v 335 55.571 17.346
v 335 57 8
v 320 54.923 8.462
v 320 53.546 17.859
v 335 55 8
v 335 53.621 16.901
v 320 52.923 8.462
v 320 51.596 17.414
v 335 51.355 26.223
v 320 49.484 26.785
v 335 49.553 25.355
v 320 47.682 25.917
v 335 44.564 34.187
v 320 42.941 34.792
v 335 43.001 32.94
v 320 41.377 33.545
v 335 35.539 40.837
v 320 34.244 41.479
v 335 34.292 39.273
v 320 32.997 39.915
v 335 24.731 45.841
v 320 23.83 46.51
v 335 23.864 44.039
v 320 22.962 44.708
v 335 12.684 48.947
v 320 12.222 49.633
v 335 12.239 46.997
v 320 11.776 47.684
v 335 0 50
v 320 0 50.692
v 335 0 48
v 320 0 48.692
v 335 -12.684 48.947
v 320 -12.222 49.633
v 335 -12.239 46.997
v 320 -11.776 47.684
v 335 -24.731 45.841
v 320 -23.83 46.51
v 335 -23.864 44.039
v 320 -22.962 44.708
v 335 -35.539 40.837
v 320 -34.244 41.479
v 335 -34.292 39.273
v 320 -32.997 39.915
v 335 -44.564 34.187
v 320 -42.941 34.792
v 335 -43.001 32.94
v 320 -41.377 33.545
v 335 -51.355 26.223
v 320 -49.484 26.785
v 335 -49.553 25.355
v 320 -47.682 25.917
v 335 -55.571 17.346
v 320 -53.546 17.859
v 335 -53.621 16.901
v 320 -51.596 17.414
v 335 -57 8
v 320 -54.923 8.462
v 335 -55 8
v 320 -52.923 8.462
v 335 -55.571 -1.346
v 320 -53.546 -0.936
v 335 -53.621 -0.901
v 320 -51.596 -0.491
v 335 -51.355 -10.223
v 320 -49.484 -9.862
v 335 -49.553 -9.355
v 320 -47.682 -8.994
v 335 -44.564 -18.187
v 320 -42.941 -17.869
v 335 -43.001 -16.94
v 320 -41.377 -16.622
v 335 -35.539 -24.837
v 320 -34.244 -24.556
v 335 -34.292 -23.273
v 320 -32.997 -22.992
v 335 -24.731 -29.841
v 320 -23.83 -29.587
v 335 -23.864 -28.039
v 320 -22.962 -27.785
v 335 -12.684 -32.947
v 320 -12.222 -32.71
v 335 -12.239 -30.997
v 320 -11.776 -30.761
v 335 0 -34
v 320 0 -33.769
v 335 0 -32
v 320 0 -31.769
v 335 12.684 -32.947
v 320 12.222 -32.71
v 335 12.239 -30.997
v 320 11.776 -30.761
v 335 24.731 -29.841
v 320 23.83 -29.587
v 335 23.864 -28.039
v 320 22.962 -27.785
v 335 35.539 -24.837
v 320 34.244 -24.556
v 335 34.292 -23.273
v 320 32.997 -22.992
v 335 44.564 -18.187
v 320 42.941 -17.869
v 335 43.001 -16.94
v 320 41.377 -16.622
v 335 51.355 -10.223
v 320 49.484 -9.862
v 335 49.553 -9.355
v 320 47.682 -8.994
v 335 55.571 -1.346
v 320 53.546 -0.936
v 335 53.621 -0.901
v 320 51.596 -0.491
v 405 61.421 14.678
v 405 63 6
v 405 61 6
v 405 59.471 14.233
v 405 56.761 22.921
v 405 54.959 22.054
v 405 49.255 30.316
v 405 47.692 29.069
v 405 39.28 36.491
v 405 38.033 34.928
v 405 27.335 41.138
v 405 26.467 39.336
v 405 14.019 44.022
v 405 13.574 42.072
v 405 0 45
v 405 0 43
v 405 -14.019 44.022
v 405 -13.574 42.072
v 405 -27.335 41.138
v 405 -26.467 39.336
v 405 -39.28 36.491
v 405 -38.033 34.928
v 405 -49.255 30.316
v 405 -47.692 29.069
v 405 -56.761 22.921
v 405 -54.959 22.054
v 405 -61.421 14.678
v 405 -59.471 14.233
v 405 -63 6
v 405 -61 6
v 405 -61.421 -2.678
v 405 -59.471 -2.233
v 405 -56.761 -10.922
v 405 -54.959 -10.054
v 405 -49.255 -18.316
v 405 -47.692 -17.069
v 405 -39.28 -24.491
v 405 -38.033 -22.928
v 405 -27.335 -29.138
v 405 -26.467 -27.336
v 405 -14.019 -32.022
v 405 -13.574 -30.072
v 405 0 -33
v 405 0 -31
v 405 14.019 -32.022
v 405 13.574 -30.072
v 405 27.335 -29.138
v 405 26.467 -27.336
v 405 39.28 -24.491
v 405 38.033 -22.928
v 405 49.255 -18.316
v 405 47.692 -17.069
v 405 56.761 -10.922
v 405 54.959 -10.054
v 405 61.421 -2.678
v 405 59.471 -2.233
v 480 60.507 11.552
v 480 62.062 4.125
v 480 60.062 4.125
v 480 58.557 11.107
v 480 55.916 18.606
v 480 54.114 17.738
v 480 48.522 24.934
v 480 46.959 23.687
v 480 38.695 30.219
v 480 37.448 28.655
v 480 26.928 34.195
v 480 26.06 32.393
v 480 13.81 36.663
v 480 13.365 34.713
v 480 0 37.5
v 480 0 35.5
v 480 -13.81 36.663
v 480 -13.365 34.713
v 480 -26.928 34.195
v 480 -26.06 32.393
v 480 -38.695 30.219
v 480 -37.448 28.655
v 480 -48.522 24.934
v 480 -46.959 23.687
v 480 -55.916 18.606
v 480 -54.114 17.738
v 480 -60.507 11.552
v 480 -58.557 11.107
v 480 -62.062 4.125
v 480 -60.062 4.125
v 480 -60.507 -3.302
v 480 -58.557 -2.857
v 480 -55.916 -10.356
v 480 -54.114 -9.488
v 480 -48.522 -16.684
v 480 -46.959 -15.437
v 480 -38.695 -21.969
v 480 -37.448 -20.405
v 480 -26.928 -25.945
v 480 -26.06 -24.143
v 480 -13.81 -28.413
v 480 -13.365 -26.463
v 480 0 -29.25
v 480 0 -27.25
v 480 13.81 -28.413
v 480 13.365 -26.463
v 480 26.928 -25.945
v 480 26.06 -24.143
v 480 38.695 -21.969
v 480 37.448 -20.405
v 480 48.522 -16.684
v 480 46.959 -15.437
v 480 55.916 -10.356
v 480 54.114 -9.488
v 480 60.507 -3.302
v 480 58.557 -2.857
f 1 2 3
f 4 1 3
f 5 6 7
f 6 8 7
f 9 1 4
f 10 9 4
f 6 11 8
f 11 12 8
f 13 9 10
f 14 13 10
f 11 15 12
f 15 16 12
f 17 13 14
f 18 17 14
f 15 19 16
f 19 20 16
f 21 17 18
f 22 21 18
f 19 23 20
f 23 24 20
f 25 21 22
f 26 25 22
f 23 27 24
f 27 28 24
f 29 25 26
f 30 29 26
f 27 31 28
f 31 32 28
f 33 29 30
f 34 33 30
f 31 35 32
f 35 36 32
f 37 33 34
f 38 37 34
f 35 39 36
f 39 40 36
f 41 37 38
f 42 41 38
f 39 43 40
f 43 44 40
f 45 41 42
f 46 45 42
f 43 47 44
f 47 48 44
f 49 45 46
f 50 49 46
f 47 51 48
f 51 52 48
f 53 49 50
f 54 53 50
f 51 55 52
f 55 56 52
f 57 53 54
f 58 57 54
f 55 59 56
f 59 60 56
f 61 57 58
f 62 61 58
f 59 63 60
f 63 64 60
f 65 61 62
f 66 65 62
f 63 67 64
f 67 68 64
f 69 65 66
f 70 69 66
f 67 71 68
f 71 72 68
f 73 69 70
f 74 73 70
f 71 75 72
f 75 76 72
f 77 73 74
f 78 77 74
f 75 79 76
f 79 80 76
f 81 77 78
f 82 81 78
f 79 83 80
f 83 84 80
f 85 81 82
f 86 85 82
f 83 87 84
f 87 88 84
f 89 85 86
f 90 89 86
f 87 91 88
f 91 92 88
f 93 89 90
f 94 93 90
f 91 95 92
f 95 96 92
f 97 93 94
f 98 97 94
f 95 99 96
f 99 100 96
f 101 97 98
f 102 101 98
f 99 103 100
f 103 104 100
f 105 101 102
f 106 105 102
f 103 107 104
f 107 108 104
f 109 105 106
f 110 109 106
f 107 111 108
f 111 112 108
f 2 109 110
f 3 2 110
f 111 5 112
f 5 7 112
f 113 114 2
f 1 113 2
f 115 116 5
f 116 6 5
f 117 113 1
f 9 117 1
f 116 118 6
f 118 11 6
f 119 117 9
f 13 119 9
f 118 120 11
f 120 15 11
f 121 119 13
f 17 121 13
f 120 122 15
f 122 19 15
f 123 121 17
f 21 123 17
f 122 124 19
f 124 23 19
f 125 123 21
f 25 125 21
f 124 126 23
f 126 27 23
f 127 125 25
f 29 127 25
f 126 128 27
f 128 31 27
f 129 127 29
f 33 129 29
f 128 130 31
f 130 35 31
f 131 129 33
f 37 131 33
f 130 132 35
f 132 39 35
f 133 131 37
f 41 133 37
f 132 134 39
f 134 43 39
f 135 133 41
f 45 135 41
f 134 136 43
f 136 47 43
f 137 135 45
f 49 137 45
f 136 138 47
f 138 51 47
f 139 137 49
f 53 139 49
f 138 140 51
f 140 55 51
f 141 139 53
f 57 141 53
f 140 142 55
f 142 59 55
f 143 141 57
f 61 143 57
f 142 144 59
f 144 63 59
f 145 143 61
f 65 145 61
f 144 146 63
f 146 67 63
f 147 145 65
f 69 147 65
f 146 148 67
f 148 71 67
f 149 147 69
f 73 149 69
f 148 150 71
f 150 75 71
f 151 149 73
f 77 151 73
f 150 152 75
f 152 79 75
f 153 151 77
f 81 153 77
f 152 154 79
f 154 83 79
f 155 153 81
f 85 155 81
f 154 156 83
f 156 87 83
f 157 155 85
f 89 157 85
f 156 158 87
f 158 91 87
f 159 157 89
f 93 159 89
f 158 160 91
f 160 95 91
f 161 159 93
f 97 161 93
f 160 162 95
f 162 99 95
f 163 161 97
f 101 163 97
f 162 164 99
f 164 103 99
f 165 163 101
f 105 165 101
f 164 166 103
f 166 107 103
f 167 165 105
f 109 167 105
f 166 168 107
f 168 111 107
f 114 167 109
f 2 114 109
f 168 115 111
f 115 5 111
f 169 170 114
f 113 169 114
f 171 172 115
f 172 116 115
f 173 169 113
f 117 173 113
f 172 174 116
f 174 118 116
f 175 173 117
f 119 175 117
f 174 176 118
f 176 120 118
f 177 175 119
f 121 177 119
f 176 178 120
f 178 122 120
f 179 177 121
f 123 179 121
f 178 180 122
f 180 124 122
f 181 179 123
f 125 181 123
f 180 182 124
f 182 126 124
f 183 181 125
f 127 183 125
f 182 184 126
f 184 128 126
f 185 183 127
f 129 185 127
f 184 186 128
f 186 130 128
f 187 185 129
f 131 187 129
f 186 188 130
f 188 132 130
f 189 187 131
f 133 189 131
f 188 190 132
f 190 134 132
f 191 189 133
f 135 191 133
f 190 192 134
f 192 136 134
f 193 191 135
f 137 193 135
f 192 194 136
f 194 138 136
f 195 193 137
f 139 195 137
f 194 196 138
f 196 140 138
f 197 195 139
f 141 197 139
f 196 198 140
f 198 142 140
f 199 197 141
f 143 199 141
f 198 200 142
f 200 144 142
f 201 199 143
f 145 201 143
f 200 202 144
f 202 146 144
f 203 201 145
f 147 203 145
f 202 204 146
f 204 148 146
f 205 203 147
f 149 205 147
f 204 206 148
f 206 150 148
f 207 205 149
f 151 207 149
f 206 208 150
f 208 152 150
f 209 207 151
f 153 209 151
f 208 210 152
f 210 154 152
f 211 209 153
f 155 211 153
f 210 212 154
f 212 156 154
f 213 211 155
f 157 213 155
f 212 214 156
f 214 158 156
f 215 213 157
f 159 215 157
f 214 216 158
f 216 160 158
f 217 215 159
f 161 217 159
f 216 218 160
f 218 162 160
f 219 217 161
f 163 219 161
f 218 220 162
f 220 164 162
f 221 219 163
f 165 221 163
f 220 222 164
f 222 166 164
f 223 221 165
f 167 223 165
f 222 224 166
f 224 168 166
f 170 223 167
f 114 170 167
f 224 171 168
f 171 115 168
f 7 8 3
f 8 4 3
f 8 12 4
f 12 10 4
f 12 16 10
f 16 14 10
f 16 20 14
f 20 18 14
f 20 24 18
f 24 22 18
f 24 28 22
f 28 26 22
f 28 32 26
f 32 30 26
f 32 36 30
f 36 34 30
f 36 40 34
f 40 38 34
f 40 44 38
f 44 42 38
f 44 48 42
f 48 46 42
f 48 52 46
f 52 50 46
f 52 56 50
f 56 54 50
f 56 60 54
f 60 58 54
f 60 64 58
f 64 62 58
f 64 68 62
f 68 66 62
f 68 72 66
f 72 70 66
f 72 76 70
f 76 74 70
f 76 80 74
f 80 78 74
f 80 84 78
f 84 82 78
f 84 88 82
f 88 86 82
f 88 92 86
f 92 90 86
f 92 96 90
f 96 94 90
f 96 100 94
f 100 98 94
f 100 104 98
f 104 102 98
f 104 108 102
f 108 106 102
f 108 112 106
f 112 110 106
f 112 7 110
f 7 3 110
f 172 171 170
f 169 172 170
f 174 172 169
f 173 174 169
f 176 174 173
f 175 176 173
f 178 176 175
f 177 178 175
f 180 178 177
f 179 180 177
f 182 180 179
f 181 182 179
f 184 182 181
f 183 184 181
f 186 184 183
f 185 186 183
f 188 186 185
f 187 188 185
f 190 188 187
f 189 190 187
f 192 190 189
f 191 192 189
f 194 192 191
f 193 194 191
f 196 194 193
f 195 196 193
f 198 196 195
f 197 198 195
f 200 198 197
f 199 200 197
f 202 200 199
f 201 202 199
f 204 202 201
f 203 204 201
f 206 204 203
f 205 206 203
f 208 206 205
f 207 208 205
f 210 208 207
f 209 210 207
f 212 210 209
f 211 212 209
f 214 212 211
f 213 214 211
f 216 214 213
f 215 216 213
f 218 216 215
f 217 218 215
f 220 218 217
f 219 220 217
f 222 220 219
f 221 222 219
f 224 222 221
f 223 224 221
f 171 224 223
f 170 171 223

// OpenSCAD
polyhedron(points=[[320.0, 54.923077, 8.461538], [320.0, 53.546041, 17.858769], [320.0, 49.483982, 26.784783], [320.0, 42.940591, 34.791992], [320.0, 34.243978, 41.478883], [320.0, 23.83023, 46.510147], [320.0, 12.221534, 49.633494], [320.0, 0.0, 50.692308], [320.0, -12.221534, 49.633494], [320.0, -23.83023, 46.510147], [320.0, -34.243978, 41.478883], [320.0, -42.940591, 34.791992], [320.0, -49.483982, 26.784783], [320.0, -53.546041, 17.858769], [320.0, -54.923077, 8.461538], [320.0, -53.546041, -0.935692], [320.0, -49.483982, -9.861706], [320.0, -42.940591, -17.868915], [320.0, -34.243978, -24.555806], [320.0, -23.83023, -29.58707], [320.0, -12.221534, -32.710417], [320.0, -0.0, -33.769231], [320.0, 12.221534, -32.710417], [320.0, 23.83023, -29.58707], [320.0, 34.243978, -24.555806], [320.0, 42.940591, -17.868915], [320.0, 49.483982, -9.861706], [320.0, 53.546041, -0.935692], [320.0, 52.923077, 8.461538], [320.0, 51.596185, 17.413727], [320.0, 47.682045, 25.917015], [320.0, 41.376928, 33.545013], [320.0, 32.996999, 39.91522], [320.0, 22.962463, 44.708209], [320.0, 11.776493, 47.683638], [320.0, 0.0, 48.692308], [320.0, -11.776493, 47.683638], [320.0, -22.962463, 44.708209], [320.0, -32.996999, 39.91522], [320.0, -41.376928, 33.545013], [320.0, -47.682045, 25.917015], [320.0, -51.596185, 17.413727], [320.0, -52.923077, 8.461538], [320.0, -51.596185, -0.49065], [320.0, -47.682045, -8.993938], [320.0, -41.376928, -16.621936], [320.0, -32.996999, -22.992143], [320.0, -22.962463, -27.785132], [320.0, -11.776493, -30.760561], [320.0, -0.0, -31.769231], [320.0, 11.776493, -30.760561], [320.0, 22.962463, -27.785132], [320.0, 32.996999, -22.992143], [320.0, 41.376928, -16.621936], [320.0, 47.682045, -8.993938], [320.0, 51.596185, -0.49065], [335.0, 57.0, 8.0], [335.0, 55.570891, 17.345879], [335.0, 51.355225, 26.223117], [335.0, 44.564395, 34.186572], [335.0, 35.538919, 40.836922], [335.0, 24.731373, 45.840692], [335.0, 12.683693, 48.946972], [335.0, 0.0, 50.0], [335.0, -12.683693, 48.946972], [335.0, -24.731373, 45.840692], [335.0, -35.538919, 40.836922], [335.0, -44.564395, 34.186572], [335.0, -51.355225, 26.223117], [335.0, -55.570891, 17.345879], [335.0, -57.0, 8.0], [335.0, -55.570891, -1.345879], [335.0, -51.355225, -10.223117], [335.0, -44.564395, -18.186572], [335.0, -35.538919, -24.836922], [335.0, -24.731373, -29.840692], [335.0, -12.683693, -32.946972], [335.0, -0.0, -34.0], [335.0, 12.683693, -32.946972], [335.0, 24.731373, -29.840692], [335.0, 35.538919, -24.836922], [335.0, 44.564395, -18.186572], [335.0, 51.355225, -10.223117], [335.0, 55.570891, -1.345879], [335.0, 55.0, 8.0], [335.0, 53.621035, 16.900837], [335.0, 49.553288, 25.35535], [335.0, 43.000732, 32.939592], [335.0, 34.291939, 39.273259], [335.0, 23.863606, 44.038755], [335.0, 12.238651, 46.997116], [335.0, 0.0, 48.0], [335.0, -12.238651, 46.997116], [335.0, -23.863606, 44.038755], [335.0, -34.291939, 39.273259], [335.0, -43.000732, 32.939592], [335.0, -49.553288, 25.35535], [335.0, -53.621035, 16.900837], [335.0, -55.0, 8.0], [335.0, -53.621035, -0.900837], [335.0, -49.553288, -9.35535], [335.0, -43.000732, -16.939592], [335.0, -34.291939, -23.273259], [335.0, -23.863606, -28.038755], [335.0, -12.238651, -30.997116], [335.0, -0.0, -32.0], [335.0, 12.238651, -30.997116], [335.0, 23.863606, -28.038755], [335.0, 34.291939, -23.273259], [335.0, 43.000732, -16.939592], [335.0, 49.553288, -9.35535], [335.0, 53.621035, -0.900837], [405.0, 63.0, 6.0], [405.0, 61.420458, 14.678316], [405.0, 56.761039, 22.921466], [405.0, 49.255383, 30.316102], [405.0, 39.279858, 36.491428], [405.0, 27.334676, 41.137786], [405.0, 14.018819, 44.022189], [405.0, 0.0, 45.0], [405.0, -14.018819, 44.022189], [405.0, -27.334676, 41.137786], [405.0, -39.279858, 36.491428], [405.0, -49.255383, 30.316102], [405.0, -56.761039, 22.921466], [405.0, -61.420458, 14.678316], [405.0, -63.0, 6.0], [405.0, -61.420458, -2.678316], [405.0, -56.761039, -10.921466], [405.0, -49.255383, -18.316102], [405.0, -39.279858, -24.491428], [405.0, -27.334676, -29.137786], [405.0, -14.018819, -32.022189], [405.0, -0.0, -33.0], [405.0, 14.018819, -32.022189], [405.0, 27.334676, -29.137786], [405.0, 39.279858, -24.491428], [405.0, 49.255383, -18.316102], [405.0, 56.761039, -10.921466], [405.0, 61.420458, -2.678316], [405.0, 61.0, 6.0], [405.0, 59.470603, 14.233275], [405.0, 54.959101, 22.053698], [405.0, 47.69172, 29.069123], [405.0, 38.032878, 34.927765], [405.0, 26.466908, 39.335848], [405.0, 13.573777, 42.072333], [405.0, 0.0, 43.0], [405.0, -13.573777, 42.072333], [405.0, -26.466908, 39.335848], [405.0, -38.032878, 34.927765], [405.0, -47.69172, 29.069123], [405.0, -54.959101, 22.053698], [405.0, -59.470603, 14.233275], [405.0, -61.0, 6.0], [405.0, -59.470603, -2.233275], [405.0, -54.959101, -10.053698], [405.0, -47.69172, -17.069123], [405.0, -38.032878, -22.927765], [405.0, -26.466908, -27.335848], [405.0, -13.573777, -30.072333], [405.0, -0.0, -31.0], [405.0, 13.573777, -30.072333], [405.0, 26.466908, -27.335848], [405.0, 38.032878, -22.927765], [405.0, 47.69172, -17.069123], [405.0, 54.959101, -10.053698], [405.0, 59.470603, -2.233275], [480.0, 62.0625, 4.125], [480.0, 60.506464, 11.551636], [480.0, 55.91638, 18.60587], [480.0, 48.522416, 24.933972], [480.0, 38.695336, 30.218626], [480.0, 26.92791, 34.194836], [480.0, 13.810205, 36.663219], [480.0, 0.0, 37.5], [480.0, -13.810205, 36.663219], [480.0, -26.92791, 34.194836], [480.0, -38.695336, 30.218626], [480.0, -48.522416, 24.933972], [480.0, -55.91638, 18.60587], [480.0, -60.506464, 11.551636], [480.0, -62.0625, 4.125], [480.0, -60.506464, -3.301636], [480.0, -55.91638, -10.35587], [480.0, -48.522416, -16.683972], [480.0, -38.695336, -21.968626], [480.0, -26.92791, -25.944836], [480.0, -13.810205, -28.413219], [480.0, -0.0, -29.25], [480.0, 13.810205, -28.413219], [480.0, 26.92791, -25.944836], [480.0, 38.695336, -21.968626], [480.0, 48.522416, -16.683972], [480.0, 55.91638, -10.35587], [480.0, 60.506464, -3.301636], [480.0, 60.0625, 4.125], [480.0, 58.556608, 11.106594], [480.0, 54.114443, 17.738102], [480.0, 46.958753, 23.686993], [480.0, 37.448356, 28.654963], [480.0, 26.060142, 32.392898], [480.0, 13.365164, 34.713363], [480.0, 0.0, 35.5], [480.0, -13.365164, 34.713363], [480.0, -26.060142, 32.392898], [480.0, -37.448356, 28.654963], [480.0, -46.958753, 23.686993], [480.0, -54.114443, 17.738102], [480.0, -58.556608, 11.106594], [480.0, -60.0625, 4.125], [480.0, -58.556608, -2.856594], [480.0, -54.114443, -9.488102], [480.0, -46.958753, -15.436993], [480.0, -37.448356, -20.404963], [480.0, -26.060142, -24.142898], [480.0, -13.365164, -26.463363], [480.0, -0.0, -27.25], [480.0, 13.365164, -26.463363], [480.0, 26.060142, -24.142898], [480.0, 37.448356, -20.404963], [480.0, 46.958753, -15.436993], [480.0, 54.114443, -9.488102], [480.0, 58.556608, -2.856594]], faces=[[0, 56, 57], [0, 57, 1], [28, 85, 84], [28, 29, 85], [1, 57, 58], [1, 58, 2], [29, 86, 85], [29, 30, 86], [2, 58, 59], [2, 59, 3], [30, 87, 86], [30, 31, 87], [3, 59, 60], [3, 60, 4], [31, 88, 87], [31, 32, 88], [4, 60, 61], [4, 61, 5], [32, 89, 88], [32, 33, 89], [5, 61, 62], [5, 62, 6], [33, 90, 89], [33, 34, 90], [6, 62, 63], [6, 63, 7], [34, 91, 90], [34, 35, 91], [7, 63, 64], [7, 64, 8], [35, 92, 91], [35, 36, 92], [8, 64, 65], [8, 65, 9], [36, 93, 92], [36, 37, 93], [9, 65, 66], [9, 66, 10], [37, 94, 93], [37, 38, 94], [10, 66, 67], [10, 67, 11], [38, 95, 94], [38, 39, 95], [11, 67, 68], [11, 68, 12], [39, 96, 95], [39, 40, 96], [12, 68, 69], [12, 69, 13], [40, 97, 96], [40, 41, 97], [13, 69, 70], [13, 70, 14], [41, 98, 97], [41, 42, 98], [14, 70, 71], [14, 71, 15], [42, 99, 98], [42, 43, 99], [15, 71, 72], [15, 72, 16], [43, 100, 99], [43, 44, 100], [16, 72, 73], [16, 73, 17], [44, 101, 100], [44, 45, 101], [17, 73, 74], [17, 74, 18], [45, 102, 101], [45, 46, 102], [18, 74, 75], [18, 75, 19], [46, 103, 102], [46, 47, 103], [19, 75, 76], [19, 76, 20], [47, 104, 103], [47, 48, 104], [20, 76, 77], [20, 77, 21], [48, 105, 104], [48, 49, 105], [21, 77, 78], [21, 78, 22], [49, 106, 105], [49, 50, 106], [22, 78, 79], [22, 79, 23], [50, 107, 106], [50, 51, 107], [23, 79, 80], [23, 80, 24], [51, 108, 107], [51, 52, 108], [24, 80, 81], [24, 81, 25], [52, 109, 108], [52, 53, 109], [25, 81, 82], [25, 82, 26], [53, 110, 109], [53, 54, 110], [26, 82, 83], [26, 83, 27], [54, 111, 110], [54, 55, 111], [27, 83, 56], [27, 56, 0], [55, 84, 111], [55, 28, 84], [56, 112, 113], [56, 113, 57], [84, 141, 140], [84, 85, 141], [57, 113, 114], [57, 114, 58], [85, 142, 141], [85, 86, 142], [58, 114, 115], [58, 115, 59], [86, 143, 142], [86, 87, 143], [59, 115, 116], [59, 116, 60], [87, 144, 143], [87, 88, 144], [60, 116, 117], [60, 117, 61], [88, 145, 144], [88, 89, 145], [61, 117, 118], [61, 118, 62], [89, 146, 145], [89, 90, 146], [62, 118, 119], [62, 119, 63], [90, 147, 146], [90, 91, 147], [63, 119, 120], [63, 120, 64], [91, 148, 147], [91, 92, 148], [64, 120, 121], [64, 121, 65], [92, 149, 148], [92, 93, 149], [65, 121, 122], [65, 122, 66], [93, 150, 149], [93, 94, 150], [66, 122, 123], [66, 123, 67], [94, 151, 150], [94, 95, 151], [67, 123, 124], [67, 124, 68], [95, 152, 151], [95, 96, 152], [68, 124, 125], [68, 125, 69], [96, 153, 152], [96, 97, 153], [69, 125, 126], [69, 126, 70], [97, 154, 153], [97, 98, 154], [70, 126, 127], [70, 127, 71], [98, 155, 154], [98, 99, 155], [71, 127, 128], [71, 128, 72], [99, 156, 155], [99, 100, 156], [72, 128, 129], [72, 129, 73], [100, 157, 156], [100, 101, 157], [73, 129, 130], [73, 130, 74], [101, 158, 157], [101, 102, 158], [74, 130, 131], [74, 131, 75], [102, 159, 158], [102, 103, 159], [75, 131, 132], [75, 132, 76], [103, 160, 159], [103, 104, 160], [76, 132, 133], [76, 133, 77], [104, 161, 160], [104, 105, 161], [77, 133, 134], [77, 134, 78], [105, 162, 161], [105, 106, 162], [78, 134, 135], [78, 135, 79], [106, 163, 162], [106, 107, 163], [79, 135, 136], [79, 136, 80], [107, 164, 163], [107, 108, 164], [80, 136, 137], [80, 137, 81], [108, 165, 164], [108, 109, 165], [81, 137, 138], [81, 138, 82], [109, 166, 165], [109, 110, 166], [82, 138, 139], [82, 139, 83], [110, 167, 166], [110, 111, 167], [83, 139, 112], [83, 112, 56], [111, 140, 167], [111, 84, 140], [112, 168, 169], [112, 169, 113], [140, 197, 196], [140, 141, 197], [113, 169, 170], [113, 170, 114], [141, 198, 197], [141, 142, 198], [114, 170, 171], [114, 171, 115], [142, 199, 198], [142, 143, 199], [115, 171, 172], [115, 172, 116], [143, 200, 199], [143, 144, 200], [116, 172, 173], [116, 173, 117], [144, 201, 200], [144, 145, 201], [117, 173, 174], [117, 174, 118], [145, 202, 201], [145, 146, 202], [118, 174, 175], [118, 175, 119], [146, 203, 202], [146, 147, 203], [119, 175, 176], [119, 176, 120], [147, 204, 203], [147, 148, 204], [120, 176, 177], [120, 177, 121], [148, 205, 204], [148, 149, 205], [121, 177, 178], [121, 178, 122], [149, 206, 205], [149, 150, 206], [122, 178, 179], [122, 179, 123], [150, 207, 206], [150, 151, 207], [123, 179, 180], [123, 180, 124], [151, 208, 207], [151, 152, 208], [124, 180, 181], [124, 181, 125], [152, 209, 208], [152, 153, 209], [125, 181, 182], [125, 182, 126], [153, 210, 209], [153, 154, 210], [126, 182, 183], [126, 183, 127], [154, 211, 210], [154, 155, 211], [127, 183, 184], [127, 184, 128], [155, 212, 211], [155, 156, 212], [128, 184, 185], [128, 185, 129], [156, 213, 212], [156, 157, 213], [129, 185, 186], [129, 186, 130], [157, 214, 213], [157, 158, 214], [130, 186, 187], [130, 187, 131], [158, 215, 214], [158, 159, 215], [131, 187, 188], [131, 188, 132], [159, 216, 215], [159, 160, 216], [132, 188, 189], [132, 189, 133], [160, 217, 216], [160, 161, 217], [133, 189, 190], [133, 190, 134], [161, 218, 217], [161, 162, 218], [134, 190, 191], [134, 191, 135], [162, 219, 218], [162, 163, 219], [135, 191, 192], [135, 192, 136], [163, 220, 219], [163, 164, 220], [136, 192, 193], [136, 193, 137], [164, 221, 220], [164, 165, 221], [137, 193, 194], [137, 194, 138], [165, 222, 221], [165, 166, 222], [138, 194, 195], [138, 195, 139], [166, 223, 222], [166, 167, 223], [139, 195, 168], [139, 168, 112], [167, 196, 223], [167, 140, 196], [0, 29, 28], [0, 1, 29], [1, 30, 29], [1, 2, 30], [2, 31, 30], [2, 3, 31], [3, 32, 31], [3, 4, 32], [4, 33, 32], [4, 5, 33], [5, 34, 33], [5, 6, 34], [6, 35, 34], [6, 7, 35], [7, 36, 35], [7, 8, 36], [8, 37, 36], [8, 9, 37], [9, 38, 37], [9, 10, 38], [10, 39, 38], [10, 11, 39], [11, 40, 39], [11, 12, 40], [12, 41, 40], [12, 13, 41], [13, 42, 41], [13, 14, 42], [14, 43, 42], [14, 15, 43], [15, 44, 43], [15, 16, 44], [16, 45, 44], [16, 17, 45], [17, 46, 45], [17, 18, 46], [18, 47, 46], [18, 19, 47], [19, 48, 47], [19, 20, 48], [20, 49, 48], [20, 21, 49], [21, 50, 49], [21, 22, 50], [22, 51, 50], [22, 23, 51], [23, 52, 51], [23, 24, 52], [24, 53, 52], [24, 25, 53], [25, 54, 53], [25, 26, 54], [26, 55, 54], [26, 27, 55], [27, 28, 55], [27, 0, 28], [168, 196, 197], [168, 197, 169], [169, 197, 198], [169, 198, 170], [170, 198, 199], [170, 199, 171], [171, 199, 200], [171, 200, 172], [172, 200, 201], [172, 201, 173], [173, 201, 202], [173, 202, 174], [174, 202, 203], [174, 203, 175], [175, 203, 204], [175, 204, 176], [176, 204, 205], [176, 205, 177], [177, 205, 206], [177, 206, 178], [178, 206, 207], [178, 207, 179], [179, 207, 208], [179, 208, 180], [180, 208, 209], [180, 209, 181], [181, 209, 210], [181, 210, 182], [182, 210, 211], [182, 211, 183], [183, 211, 212], [183, 212, 184], [184, 212, 213], [184, 213, 185], [185, 213, 214], [185, 214, 186], [186, 214, 215], [186, 215, 187], [187, 215, 216], [187, 216, 188], [188, 216, 217], [188, 217, 189], [189, 217, 218], [189, 218, 190], [190, 218, 219], [190, 219, 191], [191, 219, 220], [191, 220, 192], [192, 220, 221], [192, 221, 193], [193, 221, 222], [193, 222, 194], [194, 222, 223], [194, 223, 195], [195, 223, 196], [195, 196, 168]], convexity=20);
